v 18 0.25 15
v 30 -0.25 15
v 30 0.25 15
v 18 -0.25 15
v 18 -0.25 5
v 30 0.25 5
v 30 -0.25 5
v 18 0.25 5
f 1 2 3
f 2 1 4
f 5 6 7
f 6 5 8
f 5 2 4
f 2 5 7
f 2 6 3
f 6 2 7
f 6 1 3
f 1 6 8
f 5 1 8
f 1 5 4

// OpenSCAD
translate ([24, 0, 10]) {
    cube([12, 0.5, 10], center=true);
}
